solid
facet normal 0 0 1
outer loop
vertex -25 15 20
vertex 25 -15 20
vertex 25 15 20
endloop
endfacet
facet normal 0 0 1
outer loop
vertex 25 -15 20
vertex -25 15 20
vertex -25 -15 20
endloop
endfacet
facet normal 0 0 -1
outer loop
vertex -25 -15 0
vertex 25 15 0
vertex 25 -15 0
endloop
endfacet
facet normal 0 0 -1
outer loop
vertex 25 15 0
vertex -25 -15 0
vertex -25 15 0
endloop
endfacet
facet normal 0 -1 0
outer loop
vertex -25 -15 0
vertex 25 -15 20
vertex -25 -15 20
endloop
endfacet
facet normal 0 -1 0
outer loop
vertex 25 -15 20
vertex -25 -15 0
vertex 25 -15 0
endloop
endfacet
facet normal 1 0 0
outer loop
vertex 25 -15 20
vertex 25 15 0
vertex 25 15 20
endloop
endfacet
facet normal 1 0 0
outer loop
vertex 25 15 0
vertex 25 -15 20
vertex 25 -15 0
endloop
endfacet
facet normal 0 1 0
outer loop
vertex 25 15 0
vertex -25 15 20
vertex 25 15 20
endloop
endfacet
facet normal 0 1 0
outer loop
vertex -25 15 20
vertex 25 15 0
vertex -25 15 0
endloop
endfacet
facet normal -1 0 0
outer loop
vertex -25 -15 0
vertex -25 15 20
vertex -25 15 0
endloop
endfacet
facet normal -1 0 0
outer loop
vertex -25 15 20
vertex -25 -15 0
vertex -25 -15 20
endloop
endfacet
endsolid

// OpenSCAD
// Define dimensions for the rectangular block
block_length = 50;  // Length of the block
block_width = 30;   // Width of the block
block_height = 20;  // Height of the block (increased thickness to match original model)

// Create the rectangular block
module rectangular_block() {
    translate([0, 0, 10])  // Adjust position upward to align with the original model
    cube([block_length, block_width, block_height], center = true);
}

// Call the module to render the block
rectangular_block();
